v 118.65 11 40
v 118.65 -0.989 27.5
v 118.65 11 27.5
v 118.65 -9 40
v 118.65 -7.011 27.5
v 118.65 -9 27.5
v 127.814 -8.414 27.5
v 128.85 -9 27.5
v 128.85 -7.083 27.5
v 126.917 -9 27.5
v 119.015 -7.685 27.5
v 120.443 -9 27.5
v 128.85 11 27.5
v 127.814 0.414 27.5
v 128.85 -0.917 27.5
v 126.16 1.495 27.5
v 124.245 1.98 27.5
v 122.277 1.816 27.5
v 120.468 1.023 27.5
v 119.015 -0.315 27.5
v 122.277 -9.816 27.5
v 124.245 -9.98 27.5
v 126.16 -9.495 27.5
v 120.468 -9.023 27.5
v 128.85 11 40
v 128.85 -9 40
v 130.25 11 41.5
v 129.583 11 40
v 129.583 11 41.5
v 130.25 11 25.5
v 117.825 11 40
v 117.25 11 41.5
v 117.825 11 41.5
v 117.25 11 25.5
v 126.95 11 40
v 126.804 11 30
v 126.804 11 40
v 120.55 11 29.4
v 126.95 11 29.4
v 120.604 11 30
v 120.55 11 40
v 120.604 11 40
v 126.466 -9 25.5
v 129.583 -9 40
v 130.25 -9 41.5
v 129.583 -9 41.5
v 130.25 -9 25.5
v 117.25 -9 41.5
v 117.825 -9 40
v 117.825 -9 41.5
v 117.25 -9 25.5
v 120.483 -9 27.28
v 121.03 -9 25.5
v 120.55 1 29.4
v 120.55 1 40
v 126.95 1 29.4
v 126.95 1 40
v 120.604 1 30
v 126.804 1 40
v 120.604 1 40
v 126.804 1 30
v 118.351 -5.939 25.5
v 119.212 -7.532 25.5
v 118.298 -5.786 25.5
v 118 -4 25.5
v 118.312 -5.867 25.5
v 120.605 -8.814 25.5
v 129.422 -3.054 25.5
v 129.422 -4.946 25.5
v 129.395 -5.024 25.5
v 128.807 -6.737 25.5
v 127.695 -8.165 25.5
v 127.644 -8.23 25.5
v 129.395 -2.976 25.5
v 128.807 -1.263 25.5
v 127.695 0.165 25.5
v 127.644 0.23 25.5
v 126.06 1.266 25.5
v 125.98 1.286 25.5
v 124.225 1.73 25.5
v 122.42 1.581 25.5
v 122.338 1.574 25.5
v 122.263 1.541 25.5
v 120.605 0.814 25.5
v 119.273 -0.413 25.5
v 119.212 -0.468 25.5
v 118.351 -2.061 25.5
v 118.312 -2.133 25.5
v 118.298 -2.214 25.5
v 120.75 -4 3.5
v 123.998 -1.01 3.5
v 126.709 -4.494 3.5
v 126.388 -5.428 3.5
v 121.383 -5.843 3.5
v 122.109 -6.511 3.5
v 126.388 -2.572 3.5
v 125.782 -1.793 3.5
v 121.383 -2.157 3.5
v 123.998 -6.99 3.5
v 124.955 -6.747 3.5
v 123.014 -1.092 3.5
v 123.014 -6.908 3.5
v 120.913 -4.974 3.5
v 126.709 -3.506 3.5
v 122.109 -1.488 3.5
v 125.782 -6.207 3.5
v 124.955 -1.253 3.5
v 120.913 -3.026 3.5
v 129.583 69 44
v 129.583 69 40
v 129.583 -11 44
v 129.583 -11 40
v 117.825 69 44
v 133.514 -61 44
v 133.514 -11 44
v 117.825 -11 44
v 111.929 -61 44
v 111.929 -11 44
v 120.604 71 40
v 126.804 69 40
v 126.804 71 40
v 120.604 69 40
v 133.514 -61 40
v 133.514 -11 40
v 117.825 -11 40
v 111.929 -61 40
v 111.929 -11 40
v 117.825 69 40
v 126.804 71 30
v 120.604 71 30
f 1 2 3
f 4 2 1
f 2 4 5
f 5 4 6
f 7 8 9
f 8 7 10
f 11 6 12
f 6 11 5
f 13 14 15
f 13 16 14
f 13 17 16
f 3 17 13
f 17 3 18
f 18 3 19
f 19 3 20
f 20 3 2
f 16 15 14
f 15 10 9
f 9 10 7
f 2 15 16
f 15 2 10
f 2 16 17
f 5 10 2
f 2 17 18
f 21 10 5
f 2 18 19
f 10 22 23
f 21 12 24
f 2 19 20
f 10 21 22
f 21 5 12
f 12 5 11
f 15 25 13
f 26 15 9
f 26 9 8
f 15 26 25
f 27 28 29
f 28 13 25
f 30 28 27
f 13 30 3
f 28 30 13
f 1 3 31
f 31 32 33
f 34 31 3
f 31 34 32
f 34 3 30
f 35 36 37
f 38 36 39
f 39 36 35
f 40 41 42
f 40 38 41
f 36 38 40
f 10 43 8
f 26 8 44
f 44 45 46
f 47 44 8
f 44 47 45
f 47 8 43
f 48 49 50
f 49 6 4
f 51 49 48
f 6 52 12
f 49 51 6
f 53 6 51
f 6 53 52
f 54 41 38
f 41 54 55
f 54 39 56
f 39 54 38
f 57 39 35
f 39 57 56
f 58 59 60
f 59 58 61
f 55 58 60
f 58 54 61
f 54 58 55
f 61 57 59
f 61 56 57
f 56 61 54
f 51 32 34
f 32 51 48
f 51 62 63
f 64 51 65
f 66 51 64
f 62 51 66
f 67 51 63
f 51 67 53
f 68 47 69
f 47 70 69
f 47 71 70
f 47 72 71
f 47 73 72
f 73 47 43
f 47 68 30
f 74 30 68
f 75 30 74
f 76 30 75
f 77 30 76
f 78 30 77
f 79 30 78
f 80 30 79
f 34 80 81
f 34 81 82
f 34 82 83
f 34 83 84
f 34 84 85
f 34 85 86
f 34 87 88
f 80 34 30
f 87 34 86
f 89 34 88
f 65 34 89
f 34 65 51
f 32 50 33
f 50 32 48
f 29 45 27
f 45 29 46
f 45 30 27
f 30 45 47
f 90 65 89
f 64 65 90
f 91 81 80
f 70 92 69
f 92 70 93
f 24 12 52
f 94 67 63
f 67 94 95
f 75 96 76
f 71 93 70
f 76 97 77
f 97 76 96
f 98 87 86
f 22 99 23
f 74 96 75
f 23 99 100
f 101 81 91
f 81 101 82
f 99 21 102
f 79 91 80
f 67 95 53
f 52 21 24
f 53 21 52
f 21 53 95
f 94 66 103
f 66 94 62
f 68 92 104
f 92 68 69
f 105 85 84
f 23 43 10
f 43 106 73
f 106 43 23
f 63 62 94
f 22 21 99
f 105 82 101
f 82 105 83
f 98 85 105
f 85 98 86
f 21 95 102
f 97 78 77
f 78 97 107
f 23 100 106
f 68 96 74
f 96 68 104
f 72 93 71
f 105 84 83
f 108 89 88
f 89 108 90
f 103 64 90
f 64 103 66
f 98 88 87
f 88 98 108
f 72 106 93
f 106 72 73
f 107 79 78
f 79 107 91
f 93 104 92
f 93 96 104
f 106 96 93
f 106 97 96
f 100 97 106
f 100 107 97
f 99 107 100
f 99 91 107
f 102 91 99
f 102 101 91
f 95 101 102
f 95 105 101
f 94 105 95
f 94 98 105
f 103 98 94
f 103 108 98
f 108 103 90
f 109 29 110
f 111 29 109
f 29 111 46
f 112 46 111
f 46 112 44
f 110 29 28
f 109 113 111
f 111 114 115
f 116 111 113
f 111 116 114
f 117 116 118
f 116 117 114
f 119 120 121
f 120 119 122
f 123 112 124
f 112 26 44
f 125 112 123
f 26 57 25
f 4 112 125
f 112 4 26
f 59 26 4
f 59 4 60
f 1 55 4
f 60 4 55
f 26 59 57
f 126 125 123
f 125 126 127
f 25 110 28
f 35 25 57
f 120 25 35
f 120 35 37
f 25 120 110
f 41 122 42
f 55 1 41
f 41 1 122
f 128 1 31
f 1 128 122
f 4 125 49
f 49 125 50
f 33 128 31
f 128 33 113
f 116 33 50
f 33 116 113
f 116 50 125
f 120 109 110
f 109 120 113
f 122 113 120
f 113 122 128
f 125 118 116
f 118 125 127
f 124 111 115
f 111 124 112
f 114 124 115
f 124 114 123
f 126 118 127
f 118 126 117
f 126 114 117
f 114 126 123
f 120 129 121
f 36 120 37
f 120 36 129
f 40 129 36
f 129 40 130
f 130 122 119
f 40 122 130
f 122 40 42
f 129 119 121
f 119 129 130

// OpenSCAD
// file: irkem_hammerTips_v0.scad
tol = 0.2;
extrWall = 1.7+tol;
extrH = 12.9+tol;//12.6+tol;
extrW = 10+tol;

hammerY = 20;
hammerZ = 24;

module hammerTips(){
translate([0,-5,0]) cylinder(hammerZ,6,3);
difference(){
    translate([-6.5,-10,-14]) cube([13,hammerY,16]);
    union(){uChan();translate([-extrW/2,-hammerY/2,-extrH]) cube([extrW,hammerY/2,extrH]);
}
}
module uChan(){
difference(){
    translate([-extrW/2,-hammerY/2,-extrH]) cube([extrW,hammerY,extrH]);
    translate([-extrW/2+extrWall,-hammerY/2,-extrH-extrWall]) cube([extrW-2*extrWall,hammerY,extrH]);
}
}
}

//hammerTips();
// main file
include <irkem_hammerTips_v0.scad>

xO = -6;
yO = -11;
zO = 40;

kH = 4;
bH = 10;
wL = 50;
bL = 80;
oct = 6.5 * 25.4;
gap = 2;
n_oct = 1;//5;
n_keys = 12 * n_oct;
oset = -1;

sharpFlag = 1;

for (k = [9]){//:1:(n_keys-1)]){
    //
    translate([k*13.75+6.0+xO,12+yO,-12.5+zO]) rotate([0,180,0]) hammerTips();
}

for (k = [0:1:(n_oct-1)]){

//C:
//color("ivory") translate([k*oct+0+xO,0+yO,0+zO]) cube([oct*1/12-gap,bL,kH]);
//color("ivory") translate([k*oct+0+xO,-wL+yO,0+zO]) cube([oct*1/7-gap,wL,kH]);

////C#:
//if (sharpFlag){    
//color("black") translate([k*oct+oct*1/12+xO,gap+yO,0+zO]) cube([oct*1/12-gap,bL,kH+bH]);
//}//

////D:
//color("ivory") translate([k*oct+oct*2/12+xO,0+yO,0+zO]) cube([oct*1/12-gap,bL,kH]);
//color("ivory") translate([k*oct+oct*1/7+xO,-wL+yO,0+zO]) cube([oct*1/7-gap,wL,kH]);//

////D#:
//if (sharpFlag){
//color("black") translate([k*oct+oct*3/12+xO,gap+yO,0+zO]) cube([oct*1/12-gap,bL,kH+bH]);
//}//

////E:
//color("ivory") translate([k*oct+oct*4/12+xO,0+yO,0+zO]) cube([2+oct*1/12-gap,bL,kH]);
//color("ivory") translate([k*oct+oct*2/7+xO,-wL+yO,0+zO]) cube([oct*1/7-gap,wL,kH]);//

////F:
//color("ivory") difference(){
//    translate([k*oct+oct*3/7+xO,-wL+yO,0+zO]) cube([oct*1/7-gap,wL+bL,kH]);
//    translate([k*oct+oct*6/12-2+xO,0+yO,0+zO]) cube([4+oct*(1/7-1/12)-gap,bL,kH]);
//}
//color("ivory") translate([k*oct+oct*3/7+xO,-wL+yO,0+zO]) cube([oct*1/7-gap,wL,kH]);//

////F#:
//if (sharpFlag){
//color("black") translate([k*oct+oct*6/12+xO,gap+yO,0+zO]) cube([oct*1/12-gap,bL,kH+bH]);
//}//

////G:
//color("ivory") translate([k*oct+oct*7/12+xO,0+yO,0+zO]) cube([oct*1/12-gap,bL,kH]);
//color("ivory") translate([k*oct+oct*4/7+xO,-wL+yO,0+zO]) cube([oct*1/7-gap,wL,kH]);//

////G#:
//if (sharpFlag){
//color("black") translate([k*oct+oct*8/12+xO,gap+yO,0+zO]) cube([oct*1/12-gap,bL,kH+bH]);
//}//

////A:
color("ivory") translate([k*oct+oct*9/12+xO,0+yO,0+zO]) cube([oct*1/12-gap,bL,kH]);
color("ivory") translate([k*oct+oct*5/7+xO,-wL+yO,0+zO]) cube([oct*1/7-gap,wL,kH]);//

////A#:
//if (sharpFlag){
//color("black") translate([k*oct+oct*10/12+xO,gap+yO,0+zO]) cube([oct*1/12-gap,bL,kH+bH]);
//}//

////B:
//color("ivory") translate([k*oct+oct*11/12+xO,0+yO,0+zO]) cube([oct*1/12-gap,bL,kH]);
//color("ivory") translate([k*oct+oct*6/7+xO,-wL+yO,0+zO]) cube([oct*1/7-gap,wL,kH]);//

}

for (i = [9]){//,2,4,5,7,9,11]){//[0:1:(n_keys-1)]){
    translate([oset+oct*i/12+(oct*1/12-6.2)/2+xO,2+10+yO,-10+zO]) cube([6.2,bL-10,10]);
}

//if (sharpFlag){
//    for (i = [1,3,6,8,10]){//[0:1:(n_keys-1)]){
//    translate([oset+oct*i/12+(oct*1/12-6.2)/2+xO,2+10+yO,-10+zO]) cube([6.2,bL-10,10]);
//}
//}
